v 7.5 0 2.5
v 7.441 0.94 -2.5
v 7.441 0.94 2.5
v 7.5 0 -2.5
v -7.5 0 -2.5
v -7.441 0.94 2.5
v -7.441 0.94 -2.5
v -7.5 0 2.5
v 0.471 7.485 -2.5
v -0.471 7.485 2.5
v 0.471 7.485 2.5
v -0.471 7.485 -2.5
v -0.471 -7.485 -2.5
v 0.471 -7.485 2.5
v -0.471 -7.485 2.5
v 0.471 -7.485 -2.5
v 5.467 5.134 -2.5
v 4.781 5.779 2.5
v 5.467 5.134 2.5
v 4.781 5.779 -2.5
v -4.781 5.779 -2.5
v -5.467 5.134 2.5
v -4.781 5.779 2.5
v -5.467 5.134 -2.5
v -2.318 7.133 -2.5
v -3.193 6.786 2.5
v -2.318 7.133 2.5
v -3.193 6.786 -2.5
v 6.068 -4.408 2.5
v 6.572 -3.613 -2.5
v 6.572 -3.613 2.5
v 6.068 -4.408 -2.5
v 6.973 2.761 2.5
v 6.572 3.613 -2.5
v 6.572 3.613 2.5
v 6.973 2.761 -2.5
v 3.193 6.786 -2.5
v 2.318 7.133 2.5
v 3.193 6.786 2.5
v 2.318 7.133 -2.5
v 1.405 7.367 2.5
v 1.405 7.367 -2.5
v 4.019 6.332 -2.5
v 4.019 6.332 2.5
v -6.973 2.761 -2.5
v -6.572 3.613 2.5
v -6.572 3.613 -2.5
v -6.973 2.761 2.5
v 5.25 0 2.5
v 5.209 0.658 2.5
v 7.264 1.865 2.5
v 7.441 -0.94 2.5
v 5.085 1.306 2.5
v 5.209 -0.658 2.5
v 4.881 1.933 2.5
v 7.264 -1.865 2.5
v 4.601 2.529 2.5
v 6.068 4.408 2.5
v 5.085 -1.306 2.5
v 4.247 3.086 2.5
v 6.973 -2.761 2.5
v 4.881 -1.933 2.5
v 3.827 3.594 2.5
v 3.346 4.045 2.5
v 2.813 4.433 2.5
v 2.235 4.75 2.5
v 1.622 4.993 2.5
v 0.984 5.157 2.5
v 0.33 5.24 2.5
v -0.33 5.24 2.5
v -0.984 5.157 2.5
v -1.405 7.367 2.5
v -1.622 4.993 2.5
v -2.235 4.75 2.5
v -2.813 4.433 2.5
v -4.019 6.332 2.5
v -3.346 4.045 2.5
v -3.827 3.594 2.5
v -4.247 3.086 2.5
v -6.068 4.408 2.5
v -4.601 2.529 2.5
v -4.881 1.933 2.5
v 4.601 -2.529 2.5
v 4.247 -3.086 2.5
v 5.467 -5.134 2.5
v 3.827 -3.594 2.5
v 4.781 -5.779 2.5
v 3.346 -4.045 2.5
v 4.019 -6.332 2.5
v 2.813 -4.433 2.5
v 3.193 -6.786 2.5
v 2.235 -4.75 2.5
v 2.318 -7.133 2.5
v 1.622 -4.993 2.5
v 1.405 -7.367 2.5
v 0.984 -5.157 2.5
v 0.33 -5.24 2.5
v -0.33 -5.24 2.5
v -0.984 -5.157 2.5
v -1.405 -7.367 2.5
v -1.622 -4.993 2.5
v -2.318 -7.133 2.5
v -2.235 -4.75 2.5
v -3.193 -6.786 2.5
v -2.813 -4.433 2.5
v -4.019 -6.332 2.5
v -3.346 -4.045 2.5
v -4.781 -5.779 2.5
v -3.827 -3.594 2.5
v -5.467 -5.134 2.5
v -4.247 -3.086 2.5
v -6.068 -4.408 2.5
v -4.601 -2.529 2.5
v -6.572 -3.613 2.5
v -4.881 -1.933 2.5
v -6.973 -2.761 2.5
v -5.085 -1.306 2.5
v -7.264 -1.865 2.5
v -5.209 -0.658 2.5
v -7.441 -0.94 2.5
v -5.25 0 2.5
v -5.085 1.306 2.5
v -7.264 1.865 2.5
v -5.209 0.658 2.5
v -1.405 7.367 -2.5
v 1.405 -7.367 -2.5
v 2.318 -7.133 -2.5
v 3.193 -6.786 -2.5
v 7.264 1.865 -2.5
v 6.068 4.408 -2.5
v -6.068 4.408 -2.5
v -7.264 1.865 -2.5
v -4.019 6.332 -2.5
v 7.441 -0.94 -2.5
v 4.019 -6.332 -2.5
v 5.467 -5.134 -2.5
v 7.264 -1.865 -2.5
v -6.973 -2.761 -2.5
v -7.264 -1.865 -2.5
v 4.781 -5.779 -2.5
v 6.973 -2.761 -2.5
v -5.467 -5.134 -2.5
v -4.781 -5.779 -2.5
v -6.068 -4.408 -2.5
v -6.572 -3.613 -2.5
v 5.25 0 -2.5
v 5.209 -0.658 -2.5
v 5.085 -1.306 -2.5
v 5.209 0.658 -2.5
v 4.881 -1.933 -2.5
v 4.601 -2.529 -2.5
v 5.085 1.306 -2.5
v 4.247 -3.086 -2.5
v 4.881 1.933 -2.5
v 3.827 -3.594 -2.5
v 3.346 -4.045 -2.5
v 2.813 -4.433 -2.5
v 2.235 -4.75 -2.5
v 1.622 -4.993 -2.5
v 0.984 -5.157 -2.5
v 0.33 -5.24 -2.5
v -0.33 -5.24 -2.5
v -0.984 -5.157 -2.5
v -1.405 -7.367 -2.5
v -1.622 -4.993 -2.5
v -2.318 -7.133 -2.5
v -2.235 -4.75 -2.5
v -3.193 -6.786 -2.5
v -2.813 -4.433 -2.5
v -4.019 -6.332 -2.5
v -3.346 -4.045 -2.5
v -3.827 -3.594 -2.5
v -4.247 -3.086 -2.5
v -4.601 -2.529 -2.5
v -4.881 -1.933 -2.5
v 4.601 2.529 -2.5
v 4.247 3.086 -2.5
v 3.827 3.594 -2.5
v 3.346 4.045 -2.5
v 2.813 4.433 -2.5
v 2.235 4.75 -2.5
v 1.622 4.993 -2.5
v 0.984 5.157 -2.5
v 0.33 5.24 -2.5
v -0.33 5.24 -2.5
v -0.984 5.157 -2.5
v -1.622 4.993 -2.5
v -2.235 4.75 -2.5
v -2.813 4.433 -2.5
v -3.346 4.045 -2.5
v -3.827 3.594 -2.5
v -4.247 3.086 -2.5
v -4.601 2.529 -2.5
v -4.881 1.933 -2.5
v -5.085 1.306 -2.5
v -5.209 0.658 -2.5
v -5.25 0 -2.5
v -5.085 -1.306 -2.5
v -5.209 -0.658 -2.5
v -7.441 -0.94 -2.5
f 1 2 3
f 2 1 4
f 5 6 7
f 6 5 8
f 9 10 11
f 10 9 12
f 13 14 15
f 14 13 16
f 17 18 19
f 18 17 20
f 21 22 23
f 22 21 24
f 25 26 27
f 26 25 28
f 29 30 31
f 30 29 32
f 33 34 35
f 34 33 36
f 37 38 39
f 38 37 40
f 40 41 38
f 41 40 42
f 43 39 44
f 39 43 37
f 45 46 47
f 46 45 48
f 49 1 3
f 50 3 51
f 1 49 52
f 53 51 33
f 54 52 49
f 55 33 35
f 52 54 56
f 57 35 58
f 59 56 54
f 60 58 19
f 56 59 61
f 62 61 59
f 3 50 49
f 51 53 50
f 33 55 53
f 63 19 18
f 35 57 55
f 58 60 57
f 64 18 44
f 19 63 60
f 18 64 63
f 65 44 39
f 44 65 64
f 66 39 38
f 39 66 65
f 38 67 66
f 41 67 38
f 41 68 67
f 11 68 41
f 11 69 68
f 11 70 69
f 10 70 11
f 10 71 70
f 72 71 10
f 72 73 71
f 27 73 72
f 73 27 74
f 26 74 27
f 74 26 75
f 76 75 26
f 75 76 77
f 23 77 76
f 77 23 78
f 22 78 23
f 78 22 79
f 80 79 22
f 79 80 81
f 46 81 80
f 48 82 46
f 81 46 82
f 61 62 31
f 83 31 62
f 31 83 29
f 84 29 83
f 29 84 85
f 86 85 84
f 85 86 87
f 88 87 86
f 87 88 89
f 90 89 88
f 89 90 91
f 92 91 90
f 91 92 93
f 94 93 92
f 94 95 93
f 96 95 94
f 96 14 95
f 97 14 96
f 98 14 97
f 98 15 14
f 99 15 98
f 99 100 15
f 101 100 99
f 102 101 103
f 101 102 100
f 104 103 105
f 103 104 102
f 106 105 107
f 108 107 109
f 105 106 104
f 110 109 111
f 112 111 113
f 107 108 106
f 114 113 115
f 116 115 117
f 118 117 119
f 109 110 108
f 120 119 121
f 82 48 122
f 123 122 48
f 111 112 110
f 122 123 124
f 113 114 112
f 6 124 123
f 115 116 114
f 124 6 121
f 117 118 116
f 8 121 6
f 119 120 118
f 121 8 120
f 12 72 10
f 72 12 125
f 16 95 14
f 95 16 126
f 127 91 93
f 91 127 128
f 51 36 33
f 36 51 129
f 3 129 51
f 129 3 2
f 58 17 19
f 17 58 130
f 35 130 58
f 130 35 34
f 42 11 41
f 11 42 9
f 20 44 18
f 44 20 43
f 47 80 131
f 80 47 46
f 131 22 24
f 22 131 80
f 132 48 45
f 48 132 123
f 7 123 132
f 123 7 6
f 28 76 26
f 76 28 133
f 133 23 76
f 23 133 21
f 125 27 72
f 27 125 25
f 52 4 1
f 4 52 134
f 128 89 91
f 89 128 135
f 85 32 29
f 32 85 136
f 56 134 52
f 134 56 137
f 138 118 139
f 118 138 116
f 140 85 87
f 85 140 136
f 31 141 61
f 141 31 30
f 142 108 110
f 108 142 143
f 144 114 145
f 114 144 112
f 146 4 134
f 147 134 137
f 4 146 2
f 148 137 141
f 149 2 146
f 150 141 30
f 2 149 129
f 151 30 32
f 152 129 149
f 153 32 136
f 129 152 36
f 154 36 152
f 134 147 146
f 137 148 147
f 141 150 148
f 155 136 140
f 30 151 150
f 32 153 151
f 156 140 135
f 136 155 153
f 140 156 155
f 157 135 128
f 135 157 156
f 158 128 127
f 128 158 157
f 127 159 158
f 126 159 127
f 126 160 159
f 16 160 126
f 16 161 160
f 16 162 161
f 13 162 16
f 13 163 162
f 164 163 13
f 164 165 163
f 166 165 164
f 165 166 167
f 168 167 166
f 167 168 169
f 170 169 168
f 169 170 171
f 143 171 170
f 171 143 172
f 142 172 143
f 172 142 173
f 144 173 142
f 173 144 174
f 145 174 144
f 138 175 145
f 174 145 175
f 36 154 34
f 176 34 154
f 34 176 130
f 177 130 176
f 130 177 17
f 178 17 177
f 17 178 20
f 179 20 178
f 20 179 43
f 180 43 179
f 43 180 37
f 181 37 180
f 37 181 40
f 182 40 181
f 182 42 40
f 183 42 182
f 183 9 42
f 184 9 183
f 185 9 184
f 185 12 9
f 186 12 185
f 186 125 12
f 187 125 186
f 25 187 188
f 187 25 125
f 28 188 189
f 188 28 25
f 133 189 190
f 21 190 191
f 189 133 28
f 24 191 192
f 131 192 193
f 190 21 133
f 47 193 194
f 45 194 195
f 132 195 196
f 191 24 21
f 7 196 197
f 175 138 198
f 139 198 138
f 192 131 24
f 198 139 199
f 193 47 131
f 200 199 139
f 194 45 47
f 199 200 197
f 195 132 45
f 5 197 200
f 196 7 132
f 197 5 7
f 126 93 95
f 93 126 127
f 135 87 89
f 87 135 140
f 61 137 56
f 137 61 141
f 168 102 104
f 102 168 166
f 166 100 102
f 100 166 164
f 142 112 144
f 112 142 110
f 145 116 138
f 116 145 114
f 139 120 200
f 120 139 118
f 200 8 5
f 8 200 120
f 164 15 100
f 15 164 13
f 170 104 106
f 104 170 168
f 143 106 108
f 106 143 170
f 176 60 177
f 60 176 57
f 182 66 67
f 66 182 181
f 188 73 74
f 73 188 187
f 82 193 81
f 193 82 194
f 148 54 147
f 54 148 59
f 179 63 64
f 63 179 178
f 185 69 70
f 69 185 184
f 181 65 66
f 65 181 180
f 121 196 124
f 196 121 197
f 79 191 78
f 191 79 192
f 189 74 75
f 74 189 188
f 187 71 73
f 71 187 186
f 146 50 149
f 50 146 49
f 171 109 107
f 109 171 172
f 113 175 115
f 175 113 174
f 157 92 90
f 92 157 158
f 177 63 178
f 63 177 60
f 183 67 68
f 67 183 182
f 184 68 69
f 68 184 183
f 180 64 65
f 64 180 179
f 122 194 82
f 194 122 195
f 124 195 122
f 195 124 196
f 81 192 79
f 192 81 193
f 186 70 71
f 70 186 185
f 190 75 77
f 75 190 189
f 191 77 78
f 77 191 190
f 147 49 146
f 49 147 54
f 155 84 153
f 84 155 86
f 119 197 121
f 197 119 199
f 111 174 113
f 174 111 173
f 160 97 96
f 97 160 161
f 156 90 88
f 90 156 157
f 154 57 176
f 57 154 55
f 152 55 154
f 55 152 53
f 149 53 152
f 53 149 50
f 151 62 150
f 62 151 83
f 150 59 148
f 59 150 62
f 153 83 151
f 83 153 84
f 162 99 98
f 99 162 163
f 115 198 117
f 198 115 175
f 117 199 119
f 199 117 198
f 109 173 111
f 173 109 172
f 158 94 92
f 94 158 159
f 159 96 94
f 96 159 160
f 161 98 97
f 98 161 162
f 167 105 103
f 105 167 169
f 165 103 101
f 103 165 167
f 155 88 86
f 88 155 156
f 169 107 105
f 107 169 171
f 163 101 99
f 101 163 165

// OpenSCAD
$fn = 50;


difference() {
	union() {
		translate(v = [0, 0, -2.5000000000]) {
			cylinder(h = 5, r = 7.5000000000);
		}
	}
	union() {
		translate(v = [0, 0, -100.0000000000]) {
			cylinder(h = 200, r = 5.2500000000);
		}
	}
}
